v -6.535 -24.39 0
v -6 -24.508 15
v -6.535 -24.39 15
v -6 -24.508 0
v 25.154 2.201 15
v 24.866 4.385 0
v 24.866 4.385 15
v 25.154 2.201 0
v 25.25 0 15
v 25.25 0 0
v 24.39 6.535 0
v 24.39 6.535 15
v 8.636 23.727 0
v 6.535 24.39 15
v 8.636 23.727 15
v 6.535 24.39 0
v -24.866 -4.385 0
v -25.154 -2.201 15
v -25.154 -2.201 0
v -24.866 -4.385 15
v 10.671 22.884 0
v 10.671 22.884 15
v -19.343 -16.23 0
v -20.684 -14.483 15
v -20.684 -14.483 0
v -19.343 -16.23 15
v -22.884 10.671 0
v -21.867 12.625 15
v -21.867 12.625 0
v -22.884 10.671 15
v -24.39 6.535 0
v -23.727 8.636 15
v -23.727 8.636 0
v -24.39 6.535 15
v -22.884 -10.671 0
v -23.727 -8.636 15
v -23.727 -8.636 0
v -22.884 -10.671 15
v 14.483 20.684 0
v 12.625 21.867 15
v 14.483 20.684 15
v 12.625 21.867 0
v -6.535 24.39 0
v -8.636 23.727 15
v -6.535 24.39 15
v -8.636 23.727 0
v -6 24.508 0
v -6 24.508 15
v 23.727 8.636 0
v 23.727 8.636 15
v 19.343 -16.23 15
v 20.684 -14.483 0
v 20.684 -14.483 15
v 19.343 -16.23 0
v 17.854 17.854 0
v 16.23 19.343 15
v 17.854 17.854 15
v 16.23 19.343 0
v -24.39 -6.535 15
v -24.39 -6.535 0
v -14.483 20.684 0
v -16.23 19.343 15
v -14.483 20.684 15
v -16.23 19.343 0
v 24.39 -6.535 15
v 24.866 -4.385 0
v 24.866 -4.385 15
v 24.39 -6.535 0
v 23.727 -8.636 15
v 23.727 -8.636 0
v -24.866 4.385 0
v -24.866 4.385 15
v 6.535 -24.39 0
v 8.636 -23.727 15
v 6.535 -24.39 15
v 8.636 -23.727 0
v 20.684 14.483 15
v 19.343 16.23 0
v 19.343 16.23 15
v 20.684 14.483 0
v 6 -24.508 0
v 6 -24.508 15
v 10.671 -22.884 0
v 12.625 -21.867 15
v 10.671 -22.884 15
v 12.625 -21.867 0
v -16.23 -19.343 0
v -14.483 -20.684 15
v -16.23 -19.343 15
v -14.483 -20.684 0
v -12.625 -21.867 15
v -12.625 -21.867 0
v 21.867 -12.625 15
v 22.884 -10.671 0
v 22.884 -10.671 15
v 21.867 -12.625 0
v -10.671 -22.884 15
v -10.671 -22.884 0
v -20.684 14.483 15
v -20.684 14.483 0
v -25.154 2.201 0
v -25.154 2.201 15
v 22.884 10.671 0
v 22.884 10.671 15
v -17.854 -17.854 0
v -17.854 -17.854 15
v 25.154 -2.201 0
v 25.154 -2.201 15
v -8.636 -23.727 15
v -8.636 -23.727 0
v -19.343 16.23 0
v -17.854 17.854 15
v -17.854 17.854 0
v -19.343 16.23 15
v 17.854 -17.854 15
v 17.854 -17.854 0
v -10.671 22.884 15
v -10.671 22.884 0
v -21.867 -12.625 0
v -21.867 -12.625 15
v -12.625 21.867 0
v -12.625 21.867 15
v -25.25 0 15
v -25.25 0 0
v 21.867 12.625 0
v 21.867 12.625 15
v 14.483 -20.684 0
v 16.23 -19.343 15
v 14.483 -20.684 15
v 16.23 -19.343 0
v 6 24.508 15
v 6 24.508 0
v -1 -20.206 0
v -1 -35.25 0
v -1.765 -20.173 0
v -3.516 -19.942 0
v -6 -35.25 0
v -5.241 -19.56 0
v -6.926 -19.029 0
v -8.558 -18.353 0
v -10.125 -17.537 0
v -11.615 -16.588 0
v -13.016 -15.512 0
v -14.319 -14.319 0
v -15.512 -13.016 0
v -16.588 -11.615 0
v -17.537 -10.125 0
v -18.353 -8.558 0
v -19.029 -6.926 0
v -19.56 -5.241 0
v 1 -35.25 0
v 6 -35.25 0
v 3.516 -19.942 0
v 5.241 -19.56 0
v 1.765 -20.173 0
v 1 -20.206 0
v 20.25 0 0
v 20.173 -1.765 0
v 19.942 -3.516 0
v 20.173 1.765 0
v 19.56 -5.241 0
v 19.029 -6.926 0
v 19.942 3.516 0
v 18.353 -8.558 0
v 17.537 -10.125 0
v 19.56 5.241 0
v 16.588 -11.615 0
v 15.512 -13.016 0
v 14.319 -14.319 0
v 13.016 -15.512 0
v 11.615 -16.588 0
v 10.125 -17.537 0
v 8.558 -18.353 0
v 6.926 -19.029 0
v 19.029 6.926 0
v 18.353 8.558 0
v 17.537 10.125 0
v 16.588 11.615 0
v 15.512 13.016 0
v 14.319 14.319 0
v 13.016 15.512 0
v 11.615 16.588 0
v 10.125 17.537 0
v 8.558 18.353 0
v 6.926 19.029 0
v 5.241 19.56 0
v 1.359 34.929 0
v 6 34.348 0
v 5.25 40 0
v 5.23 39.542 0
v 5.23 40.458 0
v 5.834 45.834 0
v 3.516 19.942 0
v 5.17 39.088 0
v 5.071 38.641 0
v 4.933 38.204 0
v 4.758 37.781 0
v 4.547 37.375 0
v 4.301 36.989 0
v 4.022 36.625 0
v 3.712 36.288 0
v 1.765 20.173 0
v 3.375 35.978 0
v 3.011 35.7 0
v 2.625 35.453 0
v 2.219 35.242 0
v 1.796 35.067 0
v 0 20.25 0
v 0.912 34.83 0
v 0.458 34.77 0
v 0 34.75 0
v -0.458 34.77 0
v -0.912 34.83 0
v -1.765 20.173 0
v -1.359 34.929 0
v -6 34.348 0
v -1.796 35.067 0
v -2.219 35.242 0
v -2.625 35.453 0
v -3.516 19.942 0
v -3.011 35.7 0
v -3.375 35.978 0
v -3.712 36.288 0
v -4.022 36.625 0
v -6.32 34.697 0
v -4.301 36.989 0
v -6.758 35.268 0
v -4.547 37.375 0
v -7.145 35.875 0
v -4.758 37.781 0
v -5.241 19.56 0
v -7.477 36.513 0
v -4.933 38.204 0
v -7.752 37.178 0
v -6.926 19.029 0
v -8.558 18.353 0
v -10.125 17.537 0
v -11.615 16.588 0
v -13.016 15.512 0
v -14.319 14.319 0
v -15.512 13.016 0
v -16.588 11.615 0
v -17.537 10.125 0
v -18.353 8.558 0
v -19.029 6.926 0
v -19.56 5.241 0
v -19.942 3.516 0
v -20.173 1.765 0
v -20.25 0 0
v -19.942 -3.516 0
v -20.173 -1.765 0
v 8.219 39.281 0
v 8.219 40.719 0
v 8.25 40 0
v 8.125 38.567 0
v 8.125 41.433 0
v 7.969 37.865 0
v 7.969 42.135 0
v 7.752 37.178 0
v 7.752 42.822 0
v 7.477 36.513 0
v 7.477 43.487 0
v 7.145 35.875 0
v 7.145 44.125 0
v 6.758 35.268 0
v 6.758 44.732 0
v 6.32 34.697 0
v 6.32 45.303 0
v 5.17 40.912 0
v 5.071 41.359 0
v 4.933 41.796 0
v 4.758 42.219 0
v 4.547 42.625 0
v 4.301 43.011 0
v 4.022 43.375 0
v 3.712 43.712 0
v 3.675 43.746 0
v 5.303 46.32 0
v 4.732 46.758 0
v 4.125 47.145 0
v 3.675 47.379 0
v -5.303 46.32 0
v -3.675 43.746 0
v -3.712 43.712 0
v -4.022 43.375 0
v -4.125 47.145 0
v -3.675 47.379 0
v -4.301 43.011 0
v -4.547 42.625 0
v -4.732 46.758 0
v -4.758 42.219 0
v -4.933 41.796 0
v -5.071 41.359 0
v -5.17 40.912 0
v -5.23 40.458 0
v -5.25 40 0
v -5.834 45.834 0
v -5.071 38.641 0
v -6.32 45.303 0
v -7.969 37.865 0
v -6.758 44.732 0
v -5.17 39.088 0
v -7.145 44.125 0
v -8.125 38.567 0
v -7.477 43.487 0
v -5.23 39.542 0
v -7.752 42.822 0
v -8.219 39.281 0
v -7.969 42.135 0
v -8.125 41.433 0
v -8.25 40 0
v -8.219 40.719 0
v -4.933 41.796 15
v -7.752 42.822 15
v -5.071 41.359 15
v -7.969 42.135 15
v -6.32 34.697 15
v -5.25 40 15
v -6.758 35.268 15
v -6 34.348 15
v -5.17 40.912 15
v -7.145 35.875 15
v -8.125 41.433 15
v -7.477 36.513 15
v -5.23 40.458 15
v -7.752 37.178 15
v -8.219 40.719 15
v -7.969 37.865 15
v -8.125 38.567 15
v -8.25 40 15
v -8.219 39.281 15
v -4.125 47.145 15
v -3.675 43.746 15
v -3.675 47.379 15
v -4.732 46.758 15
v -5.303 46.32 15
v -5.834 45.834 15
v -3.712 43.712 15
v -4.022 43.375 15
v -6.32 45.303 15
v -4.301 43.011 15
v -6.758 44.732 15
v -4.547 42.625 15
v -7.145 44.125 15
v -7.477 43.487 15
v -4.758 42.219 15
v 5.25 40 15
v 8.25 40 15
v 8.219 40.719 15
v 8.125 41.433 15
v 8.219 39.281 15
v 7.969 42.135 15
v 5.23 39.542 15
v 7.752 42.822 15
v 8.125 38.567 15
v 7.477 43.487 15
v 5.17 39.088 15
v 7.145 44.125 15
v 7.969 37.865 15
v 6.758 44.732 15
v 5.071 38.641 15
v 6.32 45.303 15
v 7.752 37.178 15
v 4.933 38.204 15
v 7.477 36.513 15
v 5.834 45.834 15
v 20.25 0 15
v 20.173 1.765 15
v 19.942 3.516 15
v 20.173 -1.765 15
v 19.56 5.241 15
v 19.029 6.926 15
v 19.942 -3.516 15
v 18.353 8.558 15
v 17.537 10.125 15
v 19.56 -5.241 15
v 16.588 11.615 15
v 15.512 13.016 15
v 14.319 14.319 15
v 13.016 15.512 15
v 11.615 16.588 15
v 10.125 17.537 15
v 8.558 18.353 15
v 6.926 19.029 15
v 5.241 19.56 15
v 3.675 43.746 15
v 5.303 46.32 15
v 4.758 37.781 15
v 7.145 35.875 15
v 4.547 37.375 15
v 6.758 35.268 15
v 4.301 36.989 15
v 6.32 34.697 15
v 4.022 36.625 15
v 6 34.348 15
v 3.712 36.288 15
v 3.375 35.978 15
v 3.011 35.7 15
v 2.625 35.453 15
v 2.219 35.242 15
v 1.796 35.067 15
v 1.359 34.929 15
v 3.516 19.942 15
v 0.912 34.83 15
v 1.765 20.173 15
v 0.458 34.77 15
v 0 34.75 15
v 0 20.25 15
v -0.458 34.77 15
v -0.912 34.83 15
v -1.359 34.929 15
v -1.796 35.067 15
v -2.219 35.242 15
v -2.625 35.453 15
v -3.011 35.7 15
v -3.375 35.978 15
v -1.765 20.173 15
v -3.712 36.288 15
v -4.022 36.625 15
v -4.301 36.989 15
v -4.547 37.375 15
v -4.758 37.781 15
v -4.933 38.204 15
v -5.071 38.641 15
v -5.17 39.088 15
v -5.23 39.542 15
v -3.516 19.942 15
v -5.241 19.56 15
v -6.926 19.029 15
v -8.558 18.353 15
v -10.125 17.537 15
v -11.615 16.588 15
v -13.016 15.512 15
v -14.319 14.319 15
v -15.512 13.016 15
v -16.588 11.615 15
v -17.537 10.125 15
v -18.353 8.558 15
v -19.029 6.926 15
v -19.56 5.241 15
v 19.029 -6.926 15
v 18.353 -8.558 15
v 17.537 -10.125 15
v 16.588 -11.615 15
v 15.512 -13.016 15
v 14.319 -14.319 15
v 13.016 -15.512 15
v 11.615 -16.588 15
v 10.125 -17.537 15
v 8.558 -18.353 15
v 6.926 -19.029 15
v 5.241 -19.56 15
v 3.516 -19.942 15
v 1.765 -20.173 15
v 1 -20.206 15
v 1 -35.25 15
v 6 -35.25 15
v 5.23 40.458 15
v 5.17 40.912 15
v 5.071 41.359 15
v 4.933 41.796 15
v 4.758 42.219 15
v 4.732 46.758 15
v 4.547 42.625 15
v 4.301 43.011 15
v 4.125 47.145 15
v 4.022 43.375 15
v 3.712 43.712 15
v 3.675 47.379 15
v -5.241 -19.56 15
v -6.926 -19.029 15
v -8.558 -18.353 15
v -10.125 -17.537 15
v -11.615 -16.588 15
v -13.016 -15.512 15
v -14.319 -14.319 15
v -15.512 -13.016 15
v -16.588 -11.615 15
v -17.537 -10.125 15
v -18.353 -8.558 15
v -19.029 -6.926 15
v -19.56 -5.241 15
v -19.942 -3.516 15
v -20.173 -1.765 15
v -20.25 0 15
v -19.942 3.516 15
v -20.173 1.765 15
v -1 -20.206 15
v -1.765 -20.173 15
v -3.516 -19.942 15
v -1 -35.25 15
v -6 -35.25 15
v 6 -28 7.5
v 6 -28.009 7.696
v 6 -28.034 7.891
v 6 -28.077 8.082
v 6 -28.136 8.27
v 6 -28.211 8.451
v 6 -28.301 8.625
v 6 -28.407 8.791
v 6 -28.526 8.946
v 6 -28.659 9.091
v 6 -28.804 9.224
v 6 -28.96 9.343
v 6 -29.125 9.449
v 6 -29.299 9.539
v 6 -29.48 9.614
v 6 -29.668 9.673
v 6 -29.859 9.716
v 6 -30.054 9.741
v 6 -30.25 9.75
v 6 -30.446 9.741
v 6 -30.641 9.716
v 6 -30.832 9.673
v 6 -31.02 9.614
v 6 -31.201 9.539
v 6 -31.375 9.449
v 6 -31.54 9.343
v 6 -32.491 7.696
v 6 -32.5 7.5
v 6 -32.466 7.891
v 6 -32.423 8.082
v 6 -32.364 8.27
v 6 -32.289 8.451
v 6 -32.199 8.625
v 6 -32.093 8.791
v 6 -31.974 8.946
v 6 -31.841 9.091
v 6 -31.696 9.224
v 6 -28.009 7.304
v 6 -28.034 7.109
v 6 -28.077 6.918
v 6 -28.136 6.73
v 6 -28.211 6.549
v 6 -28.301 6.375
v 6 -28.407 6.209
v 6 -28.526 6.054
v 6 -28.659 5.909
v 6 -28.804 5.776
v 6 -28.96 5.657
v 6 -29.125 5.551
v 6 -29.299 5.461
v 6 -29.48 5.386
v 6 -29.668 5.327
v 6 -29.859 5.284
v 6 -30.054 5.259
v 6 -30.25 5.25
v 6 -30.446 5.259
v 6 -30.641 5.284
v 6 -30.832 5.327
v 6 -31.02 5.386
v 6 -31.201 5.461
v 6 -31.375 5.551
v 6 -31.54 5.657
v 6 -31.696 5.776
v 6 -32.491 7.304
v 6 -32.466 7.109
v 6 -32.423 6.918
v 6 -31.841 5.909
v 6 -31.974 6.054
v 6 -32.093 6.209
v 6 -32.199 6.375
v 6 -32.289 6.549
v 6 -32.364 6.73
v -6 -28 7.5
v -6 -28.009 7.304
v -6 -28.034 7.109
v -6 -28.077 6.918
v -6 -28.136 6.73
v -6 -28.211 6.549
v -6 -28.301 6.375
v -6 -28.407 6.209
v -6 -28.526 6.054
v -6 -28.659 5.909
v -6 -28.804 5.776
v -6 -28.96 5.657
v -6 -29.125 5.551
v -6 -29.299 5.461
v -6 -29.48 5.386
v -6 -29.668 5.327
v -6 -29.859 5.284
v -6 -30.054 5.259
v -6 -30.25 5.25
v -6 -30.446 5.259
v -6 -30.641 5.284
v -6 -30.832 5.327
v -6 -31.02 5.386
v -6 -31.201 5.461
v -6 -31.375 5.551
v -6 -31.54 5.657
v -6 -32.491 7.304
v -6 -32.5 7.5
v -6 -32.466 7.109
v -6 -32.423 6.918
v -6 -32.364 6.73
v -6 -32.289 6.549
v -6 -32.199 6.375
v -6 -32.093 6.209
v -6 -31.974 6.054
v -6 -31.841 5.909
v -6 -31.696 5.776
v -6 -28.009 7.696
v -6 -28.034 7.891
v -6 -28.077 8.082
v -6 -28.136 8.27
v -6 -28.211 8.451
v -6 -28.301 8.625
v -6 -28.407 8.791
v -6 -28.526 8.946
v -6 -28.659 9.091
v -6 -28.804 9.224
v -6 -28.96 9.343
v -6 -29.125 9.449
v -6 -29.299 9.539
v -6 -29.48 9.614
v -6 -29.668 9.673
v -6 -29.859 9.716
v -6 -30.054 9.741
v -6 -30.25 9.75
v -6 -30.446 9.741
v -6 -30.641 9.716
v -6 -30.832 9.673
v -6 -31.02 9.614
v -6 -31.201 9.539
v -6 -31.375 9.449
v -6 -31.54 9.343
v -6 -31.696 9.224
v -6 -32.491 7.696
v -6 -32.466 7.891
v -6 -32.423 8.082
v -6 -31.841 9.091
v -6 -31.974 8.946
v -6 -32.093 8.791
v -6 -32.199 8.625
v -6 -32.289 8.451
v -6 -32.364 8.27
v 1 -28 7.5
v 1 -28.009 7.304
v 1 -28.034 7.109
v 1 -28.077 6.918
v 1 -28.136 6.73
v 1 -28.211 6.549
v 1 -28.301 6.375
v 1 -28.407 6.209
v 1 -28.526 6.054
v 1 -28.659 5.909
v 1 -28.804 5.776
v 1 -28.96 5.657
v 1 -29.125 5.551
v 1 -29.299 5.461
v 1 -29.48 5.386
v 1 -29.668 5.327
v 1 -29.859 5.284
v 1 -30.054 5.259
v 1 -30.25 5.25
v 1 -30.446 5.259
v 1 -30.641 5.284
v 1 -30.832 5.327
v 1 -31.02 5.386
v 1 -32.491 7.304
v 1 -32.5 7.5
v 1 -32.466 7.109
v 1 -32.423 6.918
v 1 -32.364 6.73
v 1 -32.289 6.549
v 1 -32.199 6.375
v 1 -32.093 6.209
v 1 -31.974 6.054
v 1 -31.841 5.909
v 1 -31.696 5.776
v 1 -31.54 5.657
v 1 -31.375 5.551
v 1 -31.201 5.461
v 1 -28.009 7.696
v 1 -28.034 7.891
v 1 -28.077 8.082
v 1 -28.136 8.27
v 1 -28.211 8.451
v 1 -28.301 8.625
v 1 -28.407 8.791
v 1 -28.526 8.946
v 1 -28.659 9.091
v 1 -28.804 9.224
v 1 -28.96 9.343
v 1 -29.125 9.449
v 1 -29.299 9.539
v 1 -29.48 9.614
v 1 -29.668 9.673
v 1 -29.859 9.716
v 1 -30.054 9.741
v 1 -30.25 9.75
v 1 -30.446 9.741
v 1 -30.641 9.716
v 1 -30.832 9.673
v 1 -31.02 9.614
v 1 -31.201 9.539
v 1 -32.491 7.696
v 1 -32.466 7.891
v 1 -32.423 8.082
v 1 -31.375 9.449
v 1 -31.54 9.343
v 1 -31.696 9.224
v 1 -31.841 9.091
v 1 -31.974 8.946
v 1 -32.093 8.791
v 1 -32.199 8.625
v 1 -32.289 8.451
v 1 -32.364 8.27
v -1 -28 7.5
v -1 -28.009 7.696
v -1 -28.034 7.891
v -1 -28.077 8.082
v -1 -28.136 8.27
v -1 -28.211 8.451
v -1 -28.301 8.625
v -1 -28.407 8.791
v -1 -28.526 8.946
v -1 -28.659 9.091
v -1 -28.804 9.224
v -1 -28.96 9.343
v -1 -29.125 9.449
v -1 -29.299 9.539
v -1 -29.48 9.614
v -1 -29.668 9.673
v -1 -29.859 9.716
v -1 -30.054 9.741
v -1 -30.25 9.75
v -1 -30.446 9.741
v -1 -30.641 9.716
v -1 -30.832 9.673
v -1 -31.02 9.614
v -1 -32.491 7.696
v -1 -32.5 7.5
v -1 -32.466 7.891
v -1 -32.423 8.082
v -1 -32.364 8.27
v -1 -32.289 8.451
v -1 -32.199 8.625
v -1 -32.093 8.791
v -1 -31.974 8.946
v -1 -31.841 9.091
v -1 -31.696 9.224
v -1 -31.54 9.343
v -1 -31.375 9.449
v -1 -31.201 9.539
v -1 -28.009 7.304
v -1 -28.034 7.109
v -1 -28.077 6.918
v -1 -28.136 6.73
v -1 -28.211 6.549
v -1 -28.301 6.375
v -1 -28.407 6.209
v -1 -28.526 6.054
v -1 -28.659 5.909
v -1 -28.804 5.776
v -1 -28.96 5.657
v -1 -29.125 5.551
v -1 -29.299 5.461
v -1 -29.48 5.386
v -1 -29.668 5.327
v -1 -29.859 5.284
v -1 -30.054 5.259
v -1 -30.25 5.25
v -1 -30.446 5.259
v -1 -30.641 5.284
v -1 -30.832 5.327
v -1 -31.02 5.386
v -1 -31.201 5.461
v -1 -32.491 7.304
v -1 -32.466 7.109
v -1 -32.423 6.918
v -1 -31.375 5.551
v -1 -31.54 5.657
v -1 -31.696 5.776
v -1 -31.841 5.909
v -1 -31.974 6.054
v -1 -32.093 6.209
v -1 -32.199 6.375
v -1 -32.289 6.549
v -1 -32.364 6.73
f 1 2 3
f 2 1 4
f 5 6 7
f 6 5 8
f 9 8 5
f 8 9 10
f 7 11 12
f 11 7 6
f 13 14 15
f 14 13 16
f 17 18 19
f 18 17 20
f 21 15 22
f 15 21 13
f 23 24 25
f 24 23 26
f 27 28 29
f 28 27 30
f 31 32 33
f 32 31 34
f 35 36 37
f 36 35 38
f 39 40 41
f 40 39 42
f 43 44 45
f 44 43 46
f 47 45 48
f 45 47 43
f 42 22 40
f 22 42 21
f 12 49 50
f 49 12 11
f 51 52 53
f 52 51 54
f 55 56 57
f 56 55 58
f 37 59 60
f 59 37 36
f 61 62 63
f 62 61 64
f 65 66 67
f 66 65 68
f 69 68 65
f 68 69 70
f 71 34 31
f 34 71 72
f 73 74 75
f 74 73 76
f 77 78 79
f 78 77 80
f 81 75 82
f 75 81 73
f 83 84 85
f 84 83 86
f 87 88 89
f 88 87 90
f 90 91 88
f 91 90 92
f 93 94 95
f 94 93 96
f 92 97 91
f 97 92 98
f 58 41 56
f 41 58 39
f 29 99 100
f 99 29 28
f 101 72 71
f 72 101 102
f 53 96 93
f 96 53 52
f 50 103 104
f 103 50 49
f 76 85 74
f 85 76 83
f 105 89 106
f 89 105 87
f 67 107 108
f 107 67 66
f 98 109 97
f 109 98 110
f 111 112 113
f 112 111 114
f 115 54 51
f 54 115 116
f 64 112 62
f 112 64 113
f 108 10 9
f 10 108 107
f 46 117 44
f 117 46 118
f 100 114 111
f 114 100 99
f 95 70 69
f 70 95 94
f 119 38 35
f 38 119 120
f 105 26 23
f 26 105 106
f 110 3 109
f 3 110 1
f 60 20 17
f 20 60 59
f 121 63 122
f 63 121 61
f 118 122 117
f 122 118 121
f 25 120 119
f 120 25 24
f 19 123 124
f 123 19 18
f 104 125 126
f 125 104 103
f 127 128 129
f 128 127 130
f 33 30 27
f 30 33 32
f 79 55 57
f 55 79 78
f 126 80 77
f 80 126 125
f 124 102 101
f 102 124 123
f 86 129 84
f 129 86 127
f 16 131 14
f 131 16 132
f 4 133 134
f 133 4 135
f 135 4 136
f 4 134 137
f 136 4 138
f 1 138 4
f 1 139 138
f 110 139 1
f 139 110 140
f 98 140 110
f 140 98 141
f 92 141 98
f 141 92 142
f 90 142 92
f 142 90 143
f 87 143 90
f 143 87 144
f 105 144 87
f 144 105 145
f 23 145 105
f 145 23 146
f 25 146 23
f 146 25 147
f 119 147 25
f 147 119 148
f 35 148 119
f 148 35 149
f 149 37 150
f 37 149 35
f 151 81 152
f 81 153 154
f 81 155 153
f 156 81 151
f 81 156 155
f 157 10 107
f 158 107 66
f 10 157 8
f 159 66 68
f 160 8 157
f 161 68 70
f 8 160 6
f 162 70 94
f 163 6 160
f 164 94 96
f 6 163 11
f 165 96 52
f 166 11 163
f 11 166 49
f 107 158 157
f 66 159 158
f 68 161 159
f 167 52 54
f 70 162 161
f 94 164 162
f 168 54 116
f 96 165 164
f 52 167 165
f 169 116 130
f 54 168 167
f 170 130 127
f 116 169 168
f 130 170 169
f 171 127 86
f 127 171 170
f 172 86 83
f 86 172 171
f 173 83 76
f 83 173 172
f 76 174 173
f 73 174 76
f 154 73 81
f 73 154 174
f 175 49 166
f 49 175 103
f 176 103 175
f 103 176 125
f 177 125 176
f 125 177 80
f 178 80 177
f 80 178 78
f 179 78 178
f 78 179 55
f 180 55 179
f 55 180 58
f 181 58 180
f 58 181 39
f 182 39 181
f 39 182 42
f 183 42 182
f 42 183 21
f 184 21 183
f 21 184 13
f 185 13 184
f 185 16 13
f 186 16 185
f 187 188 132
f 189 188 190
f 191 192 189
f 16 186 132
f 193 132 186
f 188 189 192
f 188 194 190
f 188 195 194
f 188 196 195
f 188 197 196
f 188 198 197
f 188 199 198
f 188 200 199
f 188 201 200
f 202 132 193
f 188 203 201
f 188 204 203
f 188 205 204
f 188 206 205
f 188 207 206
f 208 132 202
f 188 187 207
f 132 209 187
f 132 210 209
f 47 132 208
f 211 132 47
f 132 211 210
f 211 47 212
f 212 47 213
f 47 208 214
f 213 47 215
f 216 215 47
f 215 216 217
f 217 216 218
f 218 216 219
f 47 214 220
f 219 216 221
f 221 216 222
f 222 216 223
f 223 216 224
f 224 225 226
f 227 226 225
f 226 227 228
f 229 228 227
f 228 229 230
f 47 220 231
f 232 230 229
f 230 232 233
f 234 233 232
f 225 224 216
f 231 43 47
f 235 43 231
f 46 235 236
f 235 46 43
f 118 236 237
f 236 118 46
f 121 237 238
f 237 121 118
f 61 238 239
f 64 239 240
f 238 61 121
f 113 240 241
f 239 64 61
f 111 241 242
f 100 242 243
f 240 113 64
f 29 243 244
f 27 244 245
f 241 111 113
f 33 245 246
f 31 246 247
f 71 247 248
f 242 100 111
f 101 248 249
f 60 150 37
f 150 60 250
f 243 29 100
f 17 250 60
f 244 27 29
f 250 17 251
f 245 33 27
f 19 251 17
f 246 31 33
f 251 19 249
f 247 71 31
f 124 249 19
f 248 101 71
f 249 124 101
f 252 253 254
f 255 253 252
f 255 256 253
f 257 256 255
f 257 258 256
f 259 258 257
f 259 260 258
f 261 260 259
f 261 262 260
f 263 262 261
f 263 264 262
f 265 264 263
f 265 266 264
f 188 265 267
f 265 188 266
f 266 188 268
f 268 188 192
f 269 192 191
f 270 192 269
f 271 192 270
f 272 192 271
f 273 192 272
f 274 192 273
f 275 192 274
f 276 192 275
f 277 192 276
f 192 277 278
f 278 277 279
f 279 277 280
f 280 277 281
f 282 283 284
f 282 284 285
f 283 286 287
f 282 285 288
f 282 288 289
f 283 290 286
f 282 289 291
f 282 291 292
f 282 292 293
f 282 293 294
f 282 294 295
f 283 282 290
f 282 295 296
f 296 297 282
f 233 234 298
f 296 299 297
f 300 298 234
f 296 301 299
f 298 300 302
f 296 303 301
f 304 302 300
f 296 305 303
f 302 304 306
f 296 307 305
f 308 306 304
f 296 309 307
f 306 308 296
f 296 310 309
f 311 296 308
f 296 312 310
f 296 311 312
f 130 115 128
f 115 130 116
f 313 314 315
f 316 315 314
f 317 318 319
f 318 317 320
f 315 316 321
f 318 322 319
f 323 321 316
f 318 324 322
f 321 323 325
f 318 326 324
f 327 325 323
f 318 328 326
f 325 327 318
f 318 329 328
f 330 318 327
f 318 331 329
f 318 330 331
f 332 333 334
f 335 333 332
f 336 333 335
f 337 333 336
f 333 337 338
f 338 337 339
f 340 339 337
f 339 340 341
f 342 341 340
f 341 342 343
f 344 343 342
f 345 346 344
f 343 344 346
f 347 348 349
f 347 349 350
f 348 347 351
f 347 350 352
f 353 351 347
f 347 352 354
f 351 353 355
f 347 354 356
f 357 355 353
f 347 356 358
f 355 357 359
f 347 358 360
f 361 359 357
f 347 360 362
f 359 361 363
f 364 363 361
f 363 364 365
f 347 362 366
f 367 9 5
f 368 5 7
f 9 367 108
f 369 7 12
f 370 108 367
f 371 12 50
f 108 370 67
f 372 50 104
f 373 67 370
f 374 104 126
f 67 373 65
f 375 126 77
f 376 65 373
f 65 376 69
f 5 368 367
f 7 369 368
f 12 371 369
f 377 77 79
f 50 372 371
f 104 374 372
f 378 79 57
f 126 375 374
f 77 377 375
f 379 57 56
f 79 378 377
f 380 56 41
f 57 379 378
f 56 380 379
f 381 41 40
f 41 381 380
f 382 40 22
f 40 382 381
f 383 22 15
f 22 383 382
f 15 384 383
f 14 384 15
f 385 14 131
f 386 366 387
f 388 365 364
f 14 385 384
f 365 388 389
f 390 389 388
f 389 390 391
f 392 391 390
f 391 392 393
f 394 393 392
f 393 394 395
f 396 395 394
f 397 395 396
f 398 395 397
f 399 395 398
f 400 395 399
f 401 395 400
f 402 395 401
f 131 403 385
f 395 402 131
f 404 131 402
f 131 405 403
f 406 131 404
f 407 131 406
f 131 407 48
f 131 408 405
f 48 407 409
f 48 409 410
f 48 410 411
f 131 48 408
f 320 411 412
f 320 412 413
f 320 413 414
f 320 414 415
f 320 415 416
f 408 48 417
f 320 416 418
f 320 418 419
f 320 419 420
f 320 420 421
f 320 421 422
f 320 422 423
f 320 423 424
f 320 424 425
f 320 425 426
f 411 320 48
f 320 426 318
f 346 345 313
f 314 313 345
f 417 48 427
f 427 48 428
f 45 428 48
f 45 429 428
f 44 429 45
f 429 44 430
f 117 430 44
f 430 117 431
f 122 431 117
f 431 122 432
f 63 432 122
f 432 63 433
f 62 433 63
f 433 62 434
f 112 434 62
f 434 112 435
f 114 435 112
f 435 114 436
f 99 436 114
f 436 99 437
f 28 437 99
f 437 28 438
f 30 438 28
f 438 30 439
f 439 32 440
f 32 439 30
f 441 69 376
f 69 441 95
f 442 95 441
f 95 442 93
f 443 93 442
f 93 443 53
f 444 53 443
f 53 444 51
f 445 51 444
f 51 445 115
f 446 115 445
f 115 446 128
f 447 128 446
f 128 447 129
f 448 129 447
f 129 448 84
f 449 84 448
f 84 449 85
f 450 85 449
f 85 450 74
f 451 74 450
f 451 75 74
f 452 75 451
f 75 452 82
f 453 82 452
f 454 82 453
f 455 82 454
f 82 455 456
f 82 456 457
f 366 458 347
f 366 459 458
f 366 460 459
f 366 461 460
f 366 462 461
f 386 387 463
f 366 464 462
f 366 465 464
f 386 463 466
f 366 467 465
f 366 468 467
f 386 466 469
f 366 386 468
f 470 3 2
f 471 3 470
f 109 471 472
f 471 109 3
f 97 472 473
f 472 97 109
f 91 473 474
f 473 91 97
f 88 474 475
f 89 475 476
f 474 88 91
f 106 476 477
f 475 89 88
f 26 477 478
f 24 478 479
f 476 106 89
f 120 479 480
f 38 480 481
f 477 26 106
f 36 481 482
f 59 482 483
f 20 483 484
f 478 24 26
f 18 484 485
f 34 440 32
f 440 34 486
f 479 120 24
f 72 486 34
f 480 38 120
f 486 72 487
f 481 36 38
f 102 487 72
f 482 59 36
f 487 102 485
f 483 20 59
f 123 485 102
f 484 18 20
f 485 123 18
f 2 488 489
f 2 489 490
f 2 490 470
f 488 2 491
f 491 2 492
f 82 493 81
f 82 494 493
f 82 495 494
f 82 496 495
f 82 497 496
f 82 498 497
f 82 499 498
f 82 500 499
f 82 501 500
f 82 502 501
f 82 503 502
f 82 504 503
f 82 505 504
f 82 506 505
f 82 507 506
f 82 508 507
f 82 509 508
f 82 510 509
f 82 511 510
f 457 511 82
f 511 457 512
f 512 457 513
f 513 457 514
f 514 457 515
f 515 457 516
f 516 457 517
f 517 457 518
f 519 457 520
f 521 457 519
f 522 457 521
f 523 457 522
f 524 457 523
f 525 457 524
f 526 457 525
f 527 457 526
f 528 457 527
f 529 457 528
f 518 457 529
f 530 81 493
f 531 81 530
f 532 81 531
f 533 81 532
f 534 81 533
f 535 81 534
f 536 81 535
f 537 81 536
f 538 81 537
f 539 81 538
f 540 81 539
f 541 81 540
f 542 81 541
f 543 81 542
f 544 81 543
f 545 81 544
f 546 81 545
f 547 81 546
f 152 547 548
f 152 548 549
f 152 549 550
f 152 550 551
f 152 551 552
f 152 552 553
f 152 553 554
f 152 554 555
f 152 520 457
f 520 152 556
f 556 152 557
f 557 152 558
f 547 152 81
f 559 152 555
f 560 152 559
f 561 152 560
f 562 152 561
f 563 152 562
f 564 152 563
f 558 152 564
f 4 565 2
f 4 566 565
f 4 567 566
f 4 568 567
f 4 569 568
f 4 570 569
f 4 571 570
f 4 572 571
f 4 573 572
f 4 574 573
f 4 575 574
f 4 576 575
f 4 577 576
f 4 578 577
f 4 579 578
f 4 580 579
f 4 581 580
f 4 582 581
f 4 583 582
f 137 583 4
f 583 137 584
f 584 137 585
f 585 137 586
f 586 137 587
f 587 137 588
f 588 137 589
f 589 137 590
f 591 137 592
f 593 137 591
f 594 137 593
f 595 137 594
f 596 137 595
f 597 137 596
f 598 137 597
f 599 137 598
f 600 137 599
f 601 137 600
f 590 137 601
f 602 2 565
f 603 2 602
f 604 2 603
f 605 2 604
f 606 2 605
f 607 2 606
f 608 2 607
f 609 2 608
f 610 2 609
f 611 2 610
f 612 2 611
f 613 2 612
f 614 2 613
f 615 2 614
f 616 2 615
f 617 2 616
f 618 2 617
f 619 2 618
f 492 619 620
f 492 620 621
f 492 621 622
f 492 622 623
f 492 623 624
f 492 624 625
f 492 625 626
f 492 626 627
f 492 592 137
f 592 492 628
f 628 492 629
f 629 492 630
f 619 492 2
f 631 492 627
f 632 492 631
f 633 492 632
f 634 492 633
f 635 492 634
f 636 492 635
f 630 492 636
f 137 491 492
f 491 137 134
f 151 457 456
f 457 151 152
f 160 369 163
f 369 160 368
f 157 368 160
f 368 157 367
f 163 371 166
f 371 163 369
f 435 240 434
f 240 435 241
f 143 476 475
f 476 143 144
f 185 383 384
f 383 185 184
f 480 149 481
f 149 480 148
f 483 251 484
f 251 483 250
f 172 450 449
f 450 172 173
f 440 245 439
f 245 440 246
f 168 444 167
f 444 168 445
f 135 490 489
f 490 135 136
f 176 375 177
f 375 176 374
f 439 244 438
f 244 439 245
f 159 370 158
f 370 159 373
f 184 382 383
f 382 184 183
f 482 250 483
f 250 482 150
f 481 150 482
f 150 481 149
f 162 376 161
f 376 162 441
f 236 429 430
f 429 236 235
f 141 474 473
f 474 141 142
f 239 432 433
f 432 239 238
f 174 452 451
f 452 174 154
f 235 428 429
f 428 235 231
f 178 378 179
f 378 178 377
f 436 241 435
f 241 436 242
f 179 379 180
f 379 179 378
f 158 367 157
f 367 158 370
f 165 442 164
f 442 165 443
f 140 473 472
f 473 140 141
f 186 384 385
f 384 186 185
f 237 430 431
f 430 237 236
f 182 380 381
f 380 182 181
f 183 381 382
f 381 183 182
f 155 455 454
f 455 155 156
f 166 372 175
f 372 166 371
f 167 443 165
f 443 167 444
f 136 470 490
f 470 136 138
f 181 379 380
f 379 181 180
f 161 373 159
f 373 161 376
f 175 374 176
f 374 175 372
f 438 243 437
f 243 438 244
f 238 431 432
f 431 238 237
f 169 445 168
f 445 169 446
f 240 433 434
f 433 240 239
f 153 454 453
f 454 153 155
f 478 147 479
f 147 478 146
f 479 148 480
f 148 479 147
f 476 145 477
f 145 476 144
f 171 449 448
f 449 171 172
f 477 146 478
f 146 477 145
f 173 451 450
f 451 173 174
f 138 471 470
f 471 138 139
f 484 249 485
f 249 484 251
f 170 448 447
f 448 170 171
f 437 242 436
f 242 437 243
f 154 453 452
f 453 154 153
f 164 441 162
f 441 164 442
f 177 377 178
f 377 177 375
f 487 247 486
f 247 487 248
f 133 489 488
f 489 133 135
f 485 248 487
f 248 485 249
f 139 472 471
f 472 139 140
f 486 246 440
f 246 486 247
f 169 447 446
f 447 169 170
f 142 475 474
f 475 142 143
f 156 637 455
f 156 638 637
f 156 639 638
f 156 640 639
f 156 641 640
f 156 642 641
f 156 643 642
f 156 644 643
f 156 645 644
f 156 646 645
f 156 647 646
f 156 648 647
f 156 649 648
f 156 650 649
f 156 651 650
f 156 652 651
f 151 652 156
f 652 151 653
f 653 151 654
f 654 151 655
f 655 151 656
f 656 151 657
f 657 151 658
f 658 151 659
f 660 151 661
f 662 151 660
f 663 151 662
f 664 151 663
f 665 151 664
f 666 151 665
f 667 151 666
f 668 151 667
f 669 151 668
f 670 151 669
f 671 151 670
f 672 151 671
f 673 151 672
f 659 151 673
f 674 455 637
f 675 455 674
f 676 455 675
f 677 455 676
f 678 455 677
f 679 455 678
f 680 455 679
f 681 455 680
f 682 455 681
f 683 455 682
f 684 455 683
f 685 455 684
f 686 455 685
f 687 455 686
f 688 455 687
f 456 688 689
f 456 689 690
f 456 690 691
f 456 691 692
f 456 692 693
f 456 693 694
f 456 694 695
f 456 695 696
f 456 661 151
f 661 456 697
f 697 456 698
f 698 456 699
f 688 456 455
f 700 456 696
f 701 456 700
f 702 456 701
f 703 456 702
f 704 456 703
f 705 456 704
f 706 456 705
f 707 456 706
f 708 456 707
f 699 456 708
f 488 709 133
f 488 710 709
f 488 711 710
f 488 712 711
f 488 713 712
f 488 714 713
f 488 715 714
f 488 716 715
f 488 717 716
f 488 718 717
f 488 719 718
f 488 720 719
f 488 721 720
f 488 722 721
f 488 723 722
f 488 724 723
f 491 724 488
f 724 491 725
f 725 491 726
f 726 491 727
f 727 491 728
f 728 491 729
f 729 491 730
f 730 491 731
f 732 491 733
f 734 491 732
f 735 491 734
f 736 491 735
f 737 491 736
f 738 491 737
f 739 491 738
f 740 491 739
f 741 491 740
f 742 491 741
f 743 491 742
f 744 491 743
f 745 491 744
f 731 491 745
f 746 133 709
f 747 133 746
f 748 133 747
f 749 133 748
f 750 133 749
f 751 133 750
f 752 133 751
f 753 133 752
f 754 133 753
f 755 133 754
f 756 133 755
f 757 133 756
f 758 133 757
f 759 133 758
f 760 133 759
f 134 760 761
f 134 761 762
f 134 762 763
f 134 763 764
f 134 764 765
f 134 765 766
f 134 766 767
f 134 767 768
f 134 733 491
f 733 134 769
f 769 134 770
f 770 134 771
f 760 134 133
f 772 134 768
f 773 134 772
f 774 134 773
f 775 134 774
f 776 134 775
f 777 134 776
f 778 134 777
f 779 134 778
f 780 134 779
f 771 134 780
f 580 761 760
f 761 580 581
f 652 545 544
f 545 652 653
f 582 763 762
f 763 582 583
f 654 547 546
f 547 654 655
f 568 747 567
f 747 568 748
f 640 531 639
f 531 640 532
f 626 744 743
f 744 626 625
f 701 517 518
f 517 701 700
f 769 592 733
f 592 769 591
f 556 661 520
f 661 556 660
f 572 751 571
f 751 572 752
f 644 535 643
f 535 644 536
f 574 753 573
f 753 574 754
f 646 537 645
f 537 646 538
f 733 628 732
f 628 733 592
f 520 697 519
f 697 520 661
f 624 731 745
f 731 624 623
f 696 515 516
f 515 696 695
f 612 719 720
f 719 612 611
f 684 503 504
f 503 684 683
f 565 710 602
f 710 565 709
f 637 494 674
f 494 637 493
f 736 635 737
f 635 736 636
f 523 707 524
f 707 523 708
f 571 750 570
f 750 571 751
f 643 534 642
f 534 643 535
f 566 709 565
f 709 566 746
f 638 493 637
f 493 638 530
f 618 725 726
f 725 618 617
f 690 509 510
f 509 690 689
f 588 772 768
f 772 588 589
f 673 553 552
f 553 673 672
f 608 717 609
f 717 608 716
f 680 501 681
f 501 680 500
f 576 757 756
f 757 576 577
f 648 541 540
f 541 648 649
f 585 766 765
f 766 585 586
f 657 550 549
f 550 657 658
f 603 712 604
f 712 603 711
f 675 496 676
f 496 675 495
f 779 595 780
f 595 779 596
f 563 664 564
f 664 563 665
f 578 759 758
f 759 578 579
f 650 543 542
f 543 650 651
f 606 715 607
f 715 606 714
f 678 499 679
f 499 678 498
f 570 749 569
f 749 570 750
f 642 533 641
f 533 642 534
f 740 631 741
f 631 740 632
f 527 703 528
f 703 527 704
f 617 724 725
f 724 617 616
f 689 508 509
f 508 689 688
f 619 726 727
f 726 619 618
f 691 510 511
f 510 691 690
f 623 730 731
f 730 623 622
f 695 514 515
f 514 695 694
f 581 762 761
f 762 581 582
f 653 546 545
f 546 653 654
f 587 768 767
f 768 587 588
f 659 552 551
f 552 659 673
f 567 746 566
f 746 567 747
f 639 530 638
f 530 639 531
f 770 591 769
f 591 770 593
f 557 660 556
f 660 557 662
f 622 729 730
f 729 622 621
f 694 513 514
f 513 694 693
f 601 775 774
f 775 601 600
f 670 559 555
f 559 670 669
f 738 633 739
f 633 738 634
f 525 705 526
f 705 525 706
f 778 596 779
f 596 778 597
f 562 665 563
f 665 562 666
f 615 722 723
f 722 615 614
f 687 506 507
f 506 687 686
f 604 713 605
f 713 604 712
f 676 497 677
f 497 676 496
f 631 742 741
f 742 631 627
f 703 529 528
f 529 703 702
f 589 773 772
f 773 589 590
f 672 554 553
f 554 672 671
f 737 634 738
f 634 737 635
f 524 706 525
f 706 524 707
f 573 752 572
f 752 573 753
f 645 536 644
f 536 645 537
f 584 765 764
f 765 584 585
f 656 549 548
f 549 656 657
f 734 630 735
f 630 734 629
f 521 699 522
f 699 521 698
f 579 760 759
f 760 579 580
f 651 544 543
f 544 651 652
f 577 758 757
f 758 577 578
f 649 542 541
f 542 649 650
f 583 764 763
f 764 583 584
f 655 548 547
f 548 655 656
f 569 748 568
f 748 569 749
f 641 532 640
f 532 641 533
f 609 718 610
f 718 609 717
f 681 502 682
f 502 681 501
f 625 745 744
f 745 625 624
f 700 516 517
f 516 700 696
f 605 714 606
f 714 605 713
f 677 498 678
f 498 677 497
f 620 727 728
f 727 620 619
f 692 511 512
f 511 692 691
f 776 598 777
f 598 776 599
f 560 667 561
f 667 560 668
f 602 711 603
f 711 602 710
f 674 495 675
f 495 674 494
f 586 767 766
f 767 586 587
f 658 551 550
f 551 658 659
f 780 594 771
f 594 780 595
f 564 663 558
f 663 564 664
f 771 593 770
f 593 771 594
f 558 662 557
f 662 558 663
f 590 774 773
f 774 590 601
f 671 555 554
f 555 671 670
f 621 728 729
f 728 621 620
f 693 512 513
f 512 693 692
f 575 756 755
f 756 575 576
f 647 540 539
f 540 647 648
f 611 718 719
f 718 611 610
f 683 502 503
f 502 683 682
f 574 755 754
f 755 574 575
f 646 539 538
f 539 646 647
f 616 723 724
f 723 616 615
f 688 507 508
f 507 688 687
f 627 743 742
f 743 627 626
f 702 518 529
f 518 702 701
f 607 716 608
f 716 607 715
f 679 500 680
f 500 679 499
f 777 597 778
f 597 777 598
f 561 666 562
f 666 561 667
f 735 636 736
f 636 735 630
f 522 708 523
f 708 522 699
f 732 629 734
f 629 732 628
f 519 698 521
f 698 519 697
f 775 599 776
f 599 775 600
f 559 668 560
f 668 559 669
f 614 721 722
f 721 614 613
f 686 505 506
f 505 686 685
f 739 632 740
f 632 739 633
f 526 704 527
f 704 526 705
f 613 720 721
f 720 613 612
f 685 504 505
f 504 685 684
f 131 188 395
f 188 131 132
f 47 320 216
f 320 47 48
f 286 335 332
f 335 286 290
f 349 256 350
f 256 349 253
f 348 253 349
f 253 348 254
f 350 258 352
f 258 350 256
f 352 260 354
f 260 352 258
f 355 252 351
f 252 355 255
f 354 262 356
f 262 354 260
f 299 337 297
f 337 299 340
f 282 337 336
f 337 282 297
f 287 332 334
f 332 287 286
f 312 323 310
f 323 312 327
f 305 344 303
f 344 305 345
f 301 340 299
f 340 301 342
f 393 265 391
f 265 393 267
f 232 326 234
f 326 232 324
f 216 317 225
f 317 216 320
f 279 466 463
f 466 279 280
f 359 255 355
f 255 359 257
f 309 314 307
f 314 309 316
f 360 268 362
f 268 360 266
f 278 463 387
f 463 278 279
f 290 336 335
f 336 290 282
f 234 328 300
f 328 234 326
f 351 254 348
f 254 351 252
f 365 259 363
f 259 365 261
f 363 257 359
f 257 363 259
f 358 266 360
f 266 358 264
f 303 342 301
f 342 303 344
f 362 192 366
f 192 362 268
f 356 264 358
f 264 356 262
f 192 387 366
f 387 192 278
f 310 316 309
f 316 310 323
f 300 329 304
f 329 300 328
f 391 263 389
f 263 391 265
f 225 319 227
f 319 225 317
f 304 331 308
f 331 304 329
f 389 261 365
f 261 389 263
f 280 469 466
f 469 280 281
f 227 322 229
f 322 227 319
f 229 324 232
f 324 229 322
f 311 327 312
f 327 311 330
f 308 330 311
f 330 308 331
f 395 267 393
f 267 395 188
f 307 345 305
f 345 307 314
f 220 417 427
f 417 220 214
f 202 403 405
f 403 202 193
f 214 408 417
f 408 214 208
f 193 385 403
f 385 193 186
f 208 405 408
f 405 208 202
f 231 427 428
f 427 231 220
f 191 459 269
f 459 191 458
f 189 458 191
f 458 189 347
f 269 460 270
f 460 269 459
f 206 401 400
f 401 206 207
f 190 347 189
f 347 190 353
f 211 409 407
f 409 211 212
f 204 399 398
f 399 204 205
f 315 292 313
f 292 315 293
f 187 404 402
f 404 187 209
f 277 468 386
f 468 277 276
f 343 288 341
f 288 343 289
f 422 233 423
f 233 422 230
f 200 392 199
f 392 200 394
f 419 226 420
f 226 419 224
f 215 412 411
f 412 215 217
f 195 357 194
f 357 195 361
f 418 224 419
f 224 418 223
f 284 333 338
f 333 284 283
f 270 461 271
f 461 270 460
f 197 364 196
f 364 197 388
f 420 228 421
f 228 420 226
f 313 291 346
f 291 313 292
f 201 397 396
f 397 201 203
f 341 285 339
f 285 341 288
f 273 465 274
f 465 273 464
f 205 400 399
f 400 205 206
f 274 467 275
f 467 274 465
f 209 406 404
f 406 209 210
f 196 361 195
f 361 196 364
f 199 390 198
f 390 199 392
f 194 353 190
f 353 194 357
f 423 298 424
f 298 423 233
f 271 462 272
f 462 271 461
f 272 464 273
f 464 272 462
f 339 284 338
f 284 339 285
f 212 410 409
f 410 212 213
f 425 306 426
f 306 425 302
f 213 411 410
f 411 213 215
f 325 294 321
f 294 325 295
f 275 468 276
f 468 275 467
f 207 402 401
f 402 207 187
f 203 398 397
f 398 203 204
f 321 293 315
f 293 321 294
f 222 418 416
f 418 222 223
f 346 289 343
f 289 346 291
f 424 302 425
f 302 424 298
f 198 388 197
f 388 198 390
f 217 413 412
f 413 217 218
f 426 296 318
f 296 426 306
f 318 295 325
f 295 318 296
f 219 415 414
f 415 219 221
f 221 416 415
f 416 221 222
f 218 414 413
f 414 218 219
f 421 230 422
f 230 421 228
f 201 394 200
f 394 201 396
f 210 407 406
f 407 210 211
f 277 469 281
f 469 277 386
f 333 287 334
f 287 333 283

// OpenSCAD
// file: comun.scad
// Utilidades comunes
$fn = 72;
module rrect(w, h, r, t) { linear_extrude(t) offset(r) square([w - 2*r, h - 2*r], center = true); }
// Collar partido con oreja y tornillo de apriete (eje Z). d = diámetro interior
module collar(d, h, pared = 5, oreja = 12, tornillo = 4.5) {
  difference() {
    union() {
      cylinder(d = d + 2*pared, h = h);
      translate([-oreja/2, -(d/2 + pared + oreja - 2), 0]) cube([oreja, oreja + 2, h]);
    }
    translate([0, 0, -1]) cylinder(d = d, h = h + 2);
    translate([-1, -(d/2 + pared + oreja + 1), -1]) cube([2, pared + oreja + 2, h + 2]);   // ranura
    translate([-oreja, -(d/2 + pared + oreja/2 - 1), h/2]) rotate([0, 90, 0]) cylinder(d = tornillo, h = 2*oreja); // tornillo
  }
}
module collar_hueco(d, h, pared = 5) { translate([0, 0, -1]) cylinder(d = d, h = h + 2); }
// file: parametros.scad
// GENERADO por cad/generar_3d.py (versión B). No editar a mano.
r_varillas = 92.0;
ang_varillas = 30;
r_rotor = 82.0;
r_stator_ext = 102.0;
gap = 4;
separador = 9;
juegos = 22;
longitud_pack = 190;
d_eje = 5;
d_eje_motor = 8;
rodamiento_d = 16.2;
rodamiento_h = 5.2;
altura_eje = 75;
d_mastil = 40;
d_tubo = 22;
separacion_loop = 40;
// main file
// CLIP superior del lazo de acoplo al mástil. Imprimir 1 (o 2).
include <parametros.scad>
include <comun.scad>
d_cable = 10.5;   // RG-213 = 10,3 mm ; RG-58 = 5 mm ; tubo cobre 8 mm
h = 15;
difference() {
  union() {
    collar(d_mastil + 0.5, h);
    translate([-6, 0, 0]) cube([12, separacion_loop, h]);
    translate([0, separacion_loop, 0]) cylinder(d = d_cable + 6, h = h);
  }
  translate([0, 0, -1]) cylinder(d = d_mastil + 0.5, h = h + 2);
  translate([0, separacion_loop, -1]) cylinder(d = d_cable, h = h + 2);
  translate([-d_cable * 0.35, separacion_loop, -1]) cube([d_cable * 0.7, 20, h + 2]);   // entrada a presión
}
